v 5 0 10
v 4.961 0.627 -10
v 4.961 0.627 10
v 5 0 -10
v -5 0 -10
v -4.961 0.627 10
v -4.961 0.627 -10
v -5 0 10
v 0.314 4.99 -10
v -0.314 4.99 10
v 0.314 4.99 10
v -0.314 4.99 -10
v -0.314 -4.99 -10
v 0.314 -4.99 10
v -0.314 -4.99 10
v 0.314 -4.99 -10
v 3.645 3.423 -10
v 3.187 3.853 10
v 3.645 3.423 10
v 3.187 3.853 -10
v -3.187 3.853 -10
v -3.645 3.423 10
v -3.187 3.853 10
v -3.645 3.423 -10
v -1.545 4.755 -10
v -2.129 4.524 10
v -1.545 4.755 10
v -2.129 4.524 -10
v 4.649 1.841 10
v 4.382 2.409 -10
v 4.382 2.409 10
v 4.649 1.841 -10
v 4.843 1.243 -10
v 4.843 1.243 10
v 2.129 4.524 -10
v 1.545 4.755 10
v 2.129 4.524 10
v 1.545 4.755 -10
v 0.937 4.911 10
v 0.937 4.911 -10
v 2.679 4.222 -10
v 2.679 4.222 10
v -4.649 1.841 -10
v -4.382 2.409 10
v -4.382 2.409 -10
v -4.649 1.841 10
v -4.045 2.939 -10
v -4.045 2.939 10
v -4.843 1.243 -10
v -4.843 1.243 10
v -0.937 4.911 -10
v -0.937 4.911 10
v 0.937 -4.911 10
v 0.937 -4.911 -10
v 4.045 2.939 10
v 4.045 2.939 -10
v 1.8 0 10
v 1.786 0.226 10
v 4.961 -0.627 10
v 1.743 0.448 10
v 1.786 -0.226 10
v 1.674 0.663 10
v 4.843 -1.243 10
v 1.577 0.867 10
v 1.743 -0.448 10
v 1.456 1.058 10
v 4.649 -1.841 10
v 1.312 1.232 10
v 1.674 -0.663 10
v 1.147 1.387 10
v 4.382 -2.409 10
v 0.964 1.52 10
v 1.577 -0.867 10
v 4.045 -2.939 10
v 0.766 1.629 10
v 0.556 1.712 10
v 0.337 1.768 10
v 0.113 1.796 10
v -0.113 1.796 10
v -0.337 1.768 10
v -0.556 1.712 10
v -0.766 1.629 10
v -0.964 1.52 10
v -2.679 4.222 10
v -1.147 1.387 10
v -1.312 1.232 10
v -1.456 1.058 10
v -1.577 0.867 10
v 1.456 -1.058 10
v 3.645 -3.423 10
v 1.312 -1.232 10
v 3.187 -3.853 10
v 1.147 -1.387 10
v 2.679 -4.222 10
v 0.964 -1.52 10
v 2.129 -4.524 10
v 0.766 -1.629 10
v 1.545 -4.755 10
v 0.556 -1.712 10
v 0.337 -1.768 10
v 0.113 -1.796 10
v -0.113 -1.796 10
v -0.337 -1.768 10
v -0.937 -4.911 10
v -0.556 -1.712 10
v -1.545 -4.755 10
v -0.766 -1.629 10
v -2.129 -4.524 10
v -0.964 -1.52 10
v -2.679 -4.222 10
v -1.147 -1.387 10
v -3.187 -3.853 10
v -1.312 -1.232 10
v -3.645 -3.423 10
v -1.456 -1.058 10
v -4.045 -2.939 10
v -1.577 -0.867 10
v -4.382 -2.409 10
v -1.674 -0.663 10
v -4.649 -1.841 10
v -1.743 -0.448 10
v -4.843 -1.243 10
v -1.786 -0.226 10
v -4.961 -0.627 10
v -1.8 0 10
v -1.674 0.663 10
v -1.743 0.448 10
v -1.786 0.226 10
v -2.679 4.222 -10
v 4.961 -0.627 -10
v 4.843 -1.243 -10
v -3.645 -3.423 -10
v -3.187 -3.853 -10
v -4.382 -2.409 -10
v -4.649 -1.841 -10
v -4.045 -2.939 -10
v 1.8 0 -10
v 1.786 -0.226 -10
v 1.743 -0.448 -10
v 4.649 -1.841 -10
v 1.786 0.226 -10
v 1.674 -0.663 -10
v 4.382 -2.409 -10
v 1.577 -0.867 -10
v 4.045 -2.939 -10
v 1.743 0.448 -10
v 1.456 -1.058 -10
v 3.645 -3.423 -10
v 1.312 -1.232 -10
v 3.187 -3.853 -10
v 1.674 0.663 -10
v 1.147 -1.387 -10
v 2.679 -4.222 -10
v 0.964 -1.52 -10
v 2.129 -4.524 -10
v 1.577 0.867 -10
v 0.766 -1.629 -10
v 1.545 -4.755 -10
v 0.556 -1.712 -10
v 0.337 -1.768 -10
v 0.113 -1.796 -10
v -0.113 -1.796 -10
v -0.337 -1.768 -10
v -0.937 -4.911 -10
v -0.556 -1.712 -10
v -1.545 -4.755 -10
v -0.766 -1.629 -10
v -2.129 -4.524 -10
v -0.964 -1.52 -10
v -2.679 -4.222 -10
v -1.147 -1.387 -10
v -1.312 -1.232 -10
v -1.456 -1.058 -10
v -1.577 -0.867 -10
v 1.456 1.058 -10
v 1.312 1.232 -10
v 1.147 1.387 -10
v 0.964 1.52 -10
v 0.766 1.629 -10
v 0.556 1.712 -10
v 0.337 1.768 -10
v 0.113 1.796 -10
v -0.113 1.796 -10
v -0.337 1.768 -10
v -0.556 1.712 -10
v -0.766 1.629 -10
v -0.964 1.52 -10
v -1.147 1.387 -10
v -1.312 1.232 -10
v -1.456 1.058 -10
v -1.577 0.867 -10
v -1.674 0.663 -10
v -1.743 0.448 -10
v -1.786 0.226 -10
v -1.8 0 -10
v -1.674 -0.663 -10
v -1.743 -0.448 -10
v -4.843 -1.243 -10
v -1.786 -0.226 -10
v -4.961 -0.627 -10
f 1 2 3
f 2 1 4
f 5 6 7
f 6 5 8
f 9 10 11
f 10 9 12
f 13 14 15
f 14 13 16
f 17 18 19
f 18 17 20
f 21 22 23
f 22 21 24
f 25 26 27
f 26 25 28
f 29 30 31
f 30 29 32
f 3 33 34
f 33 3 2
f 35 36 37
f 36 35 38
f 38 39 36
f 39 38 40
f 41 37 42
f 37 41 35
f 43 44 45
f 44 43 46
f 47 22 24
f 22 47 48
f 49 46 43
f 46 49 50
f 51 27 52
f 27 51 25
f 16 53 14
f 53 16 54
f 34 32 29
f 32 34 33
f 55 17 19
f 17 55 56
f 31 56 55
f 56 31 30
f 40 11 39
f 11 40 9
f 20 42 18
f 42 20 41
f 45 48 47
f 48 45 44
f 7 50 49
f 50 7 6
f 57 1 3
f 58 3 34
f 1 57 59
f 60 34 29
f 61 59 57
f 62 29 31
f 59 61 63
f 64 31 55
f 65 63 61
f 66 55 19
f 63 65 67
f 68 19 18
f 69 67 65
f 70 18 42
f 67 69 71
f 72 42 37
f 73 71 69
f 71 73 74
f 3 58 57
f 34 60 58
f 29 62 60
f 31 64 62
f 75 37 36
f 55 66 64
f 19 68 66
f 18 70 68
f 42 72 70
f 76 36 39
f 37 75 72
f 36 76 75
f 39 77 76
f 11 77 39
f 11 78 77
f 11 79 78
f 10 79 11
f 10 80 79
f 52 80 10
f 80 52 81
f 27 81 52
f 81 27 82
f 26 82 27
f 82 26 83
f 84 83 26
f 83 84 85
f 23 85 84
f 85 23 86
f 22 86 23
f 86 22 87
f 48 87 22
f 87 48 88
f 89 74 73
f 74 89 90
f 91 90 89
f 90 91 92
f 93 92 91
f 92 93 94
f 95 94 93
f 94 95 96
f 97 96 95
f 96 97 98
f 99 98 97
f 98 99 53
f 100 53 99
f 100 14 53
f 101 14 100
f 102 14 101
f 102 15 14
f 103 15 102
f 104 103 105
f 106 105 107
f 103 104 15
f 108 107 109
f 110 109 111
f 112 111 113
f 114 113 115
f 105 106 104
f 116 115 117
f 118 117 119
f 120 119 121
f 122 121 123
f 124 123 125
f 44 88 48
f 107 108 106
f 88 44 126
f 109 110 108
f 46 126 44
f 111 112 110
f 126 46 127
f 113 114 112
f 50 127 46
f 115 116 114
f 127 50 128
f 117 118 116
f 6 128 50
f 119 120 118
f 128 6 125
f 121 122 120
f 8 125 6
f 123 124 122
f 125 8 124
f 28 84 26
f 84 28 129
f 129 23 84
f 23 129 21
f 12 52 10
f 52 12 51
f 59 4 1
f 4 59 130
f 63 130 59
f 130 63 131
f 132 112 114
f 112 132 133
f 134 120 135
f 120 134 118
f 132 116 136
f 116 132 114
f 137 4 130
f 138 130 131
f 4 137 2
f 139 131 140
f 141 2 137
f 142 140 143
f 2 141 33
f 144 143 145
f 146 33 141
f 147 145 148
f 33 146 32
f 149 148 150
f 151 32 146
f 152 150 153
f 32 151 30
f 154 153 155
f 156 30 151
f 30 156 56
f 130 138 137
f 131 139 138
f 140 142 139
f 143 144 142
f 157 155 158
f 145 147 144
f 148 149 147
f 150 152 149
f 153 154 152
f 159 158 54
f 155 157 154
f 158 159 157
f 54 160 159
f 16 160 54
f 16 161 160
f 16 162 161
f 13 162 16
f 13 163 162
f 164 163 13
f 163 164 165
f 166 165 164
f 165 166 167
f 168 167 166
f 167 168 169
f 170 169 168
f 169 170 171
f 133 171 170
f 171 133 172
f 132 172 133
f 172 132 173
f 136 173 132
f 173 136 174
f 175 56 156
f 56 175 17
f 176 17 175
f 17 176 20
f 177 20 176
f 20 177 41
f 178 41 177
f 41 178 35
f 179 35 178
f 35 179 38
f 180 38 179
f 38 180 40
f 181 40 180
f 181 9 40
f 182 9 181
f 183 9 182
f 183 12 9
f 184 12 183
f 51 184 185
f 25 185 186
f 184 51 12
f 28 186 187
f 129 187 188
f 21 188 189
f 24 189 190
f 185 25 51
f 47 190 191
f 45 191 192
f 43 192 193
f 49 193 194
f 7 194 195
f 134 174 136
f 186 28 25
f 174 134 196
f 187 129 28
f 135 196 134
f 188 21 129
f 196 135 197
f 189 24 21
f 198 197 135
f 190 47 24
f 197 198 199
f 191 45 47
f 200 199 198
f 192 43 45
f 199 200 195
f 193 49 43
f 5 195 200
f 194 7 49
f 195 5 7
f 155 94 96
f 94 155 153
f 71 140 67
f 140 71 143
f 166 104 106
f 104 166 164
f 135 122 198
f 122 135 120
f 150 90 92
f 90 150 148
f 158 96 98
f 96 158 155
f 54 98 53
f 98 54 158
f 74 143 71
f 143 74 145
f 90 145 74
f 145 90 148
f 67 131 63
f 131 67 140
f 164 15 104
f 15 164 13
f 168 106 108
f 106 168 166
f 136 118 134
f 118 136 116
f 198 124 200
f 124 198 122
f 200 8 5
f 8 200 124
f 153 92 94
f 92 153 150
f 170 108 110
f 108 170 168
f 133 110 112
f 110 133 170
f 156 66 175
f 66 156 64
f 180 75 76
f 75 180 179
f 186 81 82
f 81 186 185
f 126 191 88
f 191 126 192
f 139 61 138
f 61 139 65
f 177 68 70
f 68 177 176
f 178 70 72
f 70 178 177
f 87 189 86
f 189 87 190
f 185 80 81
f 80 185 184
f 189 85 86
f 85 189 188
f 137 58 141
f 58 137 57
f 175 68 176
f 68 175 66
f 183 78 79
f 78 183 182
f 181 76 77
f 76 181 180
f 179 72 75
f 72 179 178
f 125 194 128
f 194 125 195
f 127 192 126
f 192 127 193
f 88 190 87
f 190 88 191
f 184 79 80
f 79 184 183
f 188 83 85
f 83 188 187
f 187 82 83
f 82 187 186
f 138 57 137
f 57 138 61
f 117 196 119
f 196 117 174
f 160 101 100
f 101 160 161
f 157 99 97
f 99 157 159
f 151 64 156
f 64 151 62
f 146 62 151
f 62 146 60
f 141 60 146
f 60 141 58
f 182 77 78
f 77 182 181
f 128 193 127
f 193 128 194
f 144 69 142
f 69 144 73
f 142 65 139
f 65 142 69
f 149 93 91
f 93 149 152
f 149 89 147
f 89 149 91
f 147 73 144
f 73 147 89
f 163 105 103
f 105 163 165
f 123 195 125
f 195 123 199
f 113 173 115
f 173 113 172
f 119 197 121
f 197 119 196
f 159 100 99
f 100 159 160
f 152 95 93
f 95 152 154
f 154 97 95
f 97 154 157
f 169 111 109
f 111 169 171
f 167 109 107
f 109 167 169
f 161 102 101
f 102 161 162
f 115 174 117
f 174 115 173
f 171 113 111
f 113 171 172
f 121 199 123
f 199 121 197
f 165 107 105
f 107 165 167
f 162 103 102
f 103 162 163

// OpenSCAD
$fn = 50;


difference() {
	union() {
		translate(v = [0, 0, -10.0000000000]) {
			cylinder(h = 20, r = 5.0000000000);
		}
	}
	union() {
		translate(v = [0, 0, -100.0000000000]) {
			cylinder(h = 200, r = 1.8000000000);
		}
	}
}
